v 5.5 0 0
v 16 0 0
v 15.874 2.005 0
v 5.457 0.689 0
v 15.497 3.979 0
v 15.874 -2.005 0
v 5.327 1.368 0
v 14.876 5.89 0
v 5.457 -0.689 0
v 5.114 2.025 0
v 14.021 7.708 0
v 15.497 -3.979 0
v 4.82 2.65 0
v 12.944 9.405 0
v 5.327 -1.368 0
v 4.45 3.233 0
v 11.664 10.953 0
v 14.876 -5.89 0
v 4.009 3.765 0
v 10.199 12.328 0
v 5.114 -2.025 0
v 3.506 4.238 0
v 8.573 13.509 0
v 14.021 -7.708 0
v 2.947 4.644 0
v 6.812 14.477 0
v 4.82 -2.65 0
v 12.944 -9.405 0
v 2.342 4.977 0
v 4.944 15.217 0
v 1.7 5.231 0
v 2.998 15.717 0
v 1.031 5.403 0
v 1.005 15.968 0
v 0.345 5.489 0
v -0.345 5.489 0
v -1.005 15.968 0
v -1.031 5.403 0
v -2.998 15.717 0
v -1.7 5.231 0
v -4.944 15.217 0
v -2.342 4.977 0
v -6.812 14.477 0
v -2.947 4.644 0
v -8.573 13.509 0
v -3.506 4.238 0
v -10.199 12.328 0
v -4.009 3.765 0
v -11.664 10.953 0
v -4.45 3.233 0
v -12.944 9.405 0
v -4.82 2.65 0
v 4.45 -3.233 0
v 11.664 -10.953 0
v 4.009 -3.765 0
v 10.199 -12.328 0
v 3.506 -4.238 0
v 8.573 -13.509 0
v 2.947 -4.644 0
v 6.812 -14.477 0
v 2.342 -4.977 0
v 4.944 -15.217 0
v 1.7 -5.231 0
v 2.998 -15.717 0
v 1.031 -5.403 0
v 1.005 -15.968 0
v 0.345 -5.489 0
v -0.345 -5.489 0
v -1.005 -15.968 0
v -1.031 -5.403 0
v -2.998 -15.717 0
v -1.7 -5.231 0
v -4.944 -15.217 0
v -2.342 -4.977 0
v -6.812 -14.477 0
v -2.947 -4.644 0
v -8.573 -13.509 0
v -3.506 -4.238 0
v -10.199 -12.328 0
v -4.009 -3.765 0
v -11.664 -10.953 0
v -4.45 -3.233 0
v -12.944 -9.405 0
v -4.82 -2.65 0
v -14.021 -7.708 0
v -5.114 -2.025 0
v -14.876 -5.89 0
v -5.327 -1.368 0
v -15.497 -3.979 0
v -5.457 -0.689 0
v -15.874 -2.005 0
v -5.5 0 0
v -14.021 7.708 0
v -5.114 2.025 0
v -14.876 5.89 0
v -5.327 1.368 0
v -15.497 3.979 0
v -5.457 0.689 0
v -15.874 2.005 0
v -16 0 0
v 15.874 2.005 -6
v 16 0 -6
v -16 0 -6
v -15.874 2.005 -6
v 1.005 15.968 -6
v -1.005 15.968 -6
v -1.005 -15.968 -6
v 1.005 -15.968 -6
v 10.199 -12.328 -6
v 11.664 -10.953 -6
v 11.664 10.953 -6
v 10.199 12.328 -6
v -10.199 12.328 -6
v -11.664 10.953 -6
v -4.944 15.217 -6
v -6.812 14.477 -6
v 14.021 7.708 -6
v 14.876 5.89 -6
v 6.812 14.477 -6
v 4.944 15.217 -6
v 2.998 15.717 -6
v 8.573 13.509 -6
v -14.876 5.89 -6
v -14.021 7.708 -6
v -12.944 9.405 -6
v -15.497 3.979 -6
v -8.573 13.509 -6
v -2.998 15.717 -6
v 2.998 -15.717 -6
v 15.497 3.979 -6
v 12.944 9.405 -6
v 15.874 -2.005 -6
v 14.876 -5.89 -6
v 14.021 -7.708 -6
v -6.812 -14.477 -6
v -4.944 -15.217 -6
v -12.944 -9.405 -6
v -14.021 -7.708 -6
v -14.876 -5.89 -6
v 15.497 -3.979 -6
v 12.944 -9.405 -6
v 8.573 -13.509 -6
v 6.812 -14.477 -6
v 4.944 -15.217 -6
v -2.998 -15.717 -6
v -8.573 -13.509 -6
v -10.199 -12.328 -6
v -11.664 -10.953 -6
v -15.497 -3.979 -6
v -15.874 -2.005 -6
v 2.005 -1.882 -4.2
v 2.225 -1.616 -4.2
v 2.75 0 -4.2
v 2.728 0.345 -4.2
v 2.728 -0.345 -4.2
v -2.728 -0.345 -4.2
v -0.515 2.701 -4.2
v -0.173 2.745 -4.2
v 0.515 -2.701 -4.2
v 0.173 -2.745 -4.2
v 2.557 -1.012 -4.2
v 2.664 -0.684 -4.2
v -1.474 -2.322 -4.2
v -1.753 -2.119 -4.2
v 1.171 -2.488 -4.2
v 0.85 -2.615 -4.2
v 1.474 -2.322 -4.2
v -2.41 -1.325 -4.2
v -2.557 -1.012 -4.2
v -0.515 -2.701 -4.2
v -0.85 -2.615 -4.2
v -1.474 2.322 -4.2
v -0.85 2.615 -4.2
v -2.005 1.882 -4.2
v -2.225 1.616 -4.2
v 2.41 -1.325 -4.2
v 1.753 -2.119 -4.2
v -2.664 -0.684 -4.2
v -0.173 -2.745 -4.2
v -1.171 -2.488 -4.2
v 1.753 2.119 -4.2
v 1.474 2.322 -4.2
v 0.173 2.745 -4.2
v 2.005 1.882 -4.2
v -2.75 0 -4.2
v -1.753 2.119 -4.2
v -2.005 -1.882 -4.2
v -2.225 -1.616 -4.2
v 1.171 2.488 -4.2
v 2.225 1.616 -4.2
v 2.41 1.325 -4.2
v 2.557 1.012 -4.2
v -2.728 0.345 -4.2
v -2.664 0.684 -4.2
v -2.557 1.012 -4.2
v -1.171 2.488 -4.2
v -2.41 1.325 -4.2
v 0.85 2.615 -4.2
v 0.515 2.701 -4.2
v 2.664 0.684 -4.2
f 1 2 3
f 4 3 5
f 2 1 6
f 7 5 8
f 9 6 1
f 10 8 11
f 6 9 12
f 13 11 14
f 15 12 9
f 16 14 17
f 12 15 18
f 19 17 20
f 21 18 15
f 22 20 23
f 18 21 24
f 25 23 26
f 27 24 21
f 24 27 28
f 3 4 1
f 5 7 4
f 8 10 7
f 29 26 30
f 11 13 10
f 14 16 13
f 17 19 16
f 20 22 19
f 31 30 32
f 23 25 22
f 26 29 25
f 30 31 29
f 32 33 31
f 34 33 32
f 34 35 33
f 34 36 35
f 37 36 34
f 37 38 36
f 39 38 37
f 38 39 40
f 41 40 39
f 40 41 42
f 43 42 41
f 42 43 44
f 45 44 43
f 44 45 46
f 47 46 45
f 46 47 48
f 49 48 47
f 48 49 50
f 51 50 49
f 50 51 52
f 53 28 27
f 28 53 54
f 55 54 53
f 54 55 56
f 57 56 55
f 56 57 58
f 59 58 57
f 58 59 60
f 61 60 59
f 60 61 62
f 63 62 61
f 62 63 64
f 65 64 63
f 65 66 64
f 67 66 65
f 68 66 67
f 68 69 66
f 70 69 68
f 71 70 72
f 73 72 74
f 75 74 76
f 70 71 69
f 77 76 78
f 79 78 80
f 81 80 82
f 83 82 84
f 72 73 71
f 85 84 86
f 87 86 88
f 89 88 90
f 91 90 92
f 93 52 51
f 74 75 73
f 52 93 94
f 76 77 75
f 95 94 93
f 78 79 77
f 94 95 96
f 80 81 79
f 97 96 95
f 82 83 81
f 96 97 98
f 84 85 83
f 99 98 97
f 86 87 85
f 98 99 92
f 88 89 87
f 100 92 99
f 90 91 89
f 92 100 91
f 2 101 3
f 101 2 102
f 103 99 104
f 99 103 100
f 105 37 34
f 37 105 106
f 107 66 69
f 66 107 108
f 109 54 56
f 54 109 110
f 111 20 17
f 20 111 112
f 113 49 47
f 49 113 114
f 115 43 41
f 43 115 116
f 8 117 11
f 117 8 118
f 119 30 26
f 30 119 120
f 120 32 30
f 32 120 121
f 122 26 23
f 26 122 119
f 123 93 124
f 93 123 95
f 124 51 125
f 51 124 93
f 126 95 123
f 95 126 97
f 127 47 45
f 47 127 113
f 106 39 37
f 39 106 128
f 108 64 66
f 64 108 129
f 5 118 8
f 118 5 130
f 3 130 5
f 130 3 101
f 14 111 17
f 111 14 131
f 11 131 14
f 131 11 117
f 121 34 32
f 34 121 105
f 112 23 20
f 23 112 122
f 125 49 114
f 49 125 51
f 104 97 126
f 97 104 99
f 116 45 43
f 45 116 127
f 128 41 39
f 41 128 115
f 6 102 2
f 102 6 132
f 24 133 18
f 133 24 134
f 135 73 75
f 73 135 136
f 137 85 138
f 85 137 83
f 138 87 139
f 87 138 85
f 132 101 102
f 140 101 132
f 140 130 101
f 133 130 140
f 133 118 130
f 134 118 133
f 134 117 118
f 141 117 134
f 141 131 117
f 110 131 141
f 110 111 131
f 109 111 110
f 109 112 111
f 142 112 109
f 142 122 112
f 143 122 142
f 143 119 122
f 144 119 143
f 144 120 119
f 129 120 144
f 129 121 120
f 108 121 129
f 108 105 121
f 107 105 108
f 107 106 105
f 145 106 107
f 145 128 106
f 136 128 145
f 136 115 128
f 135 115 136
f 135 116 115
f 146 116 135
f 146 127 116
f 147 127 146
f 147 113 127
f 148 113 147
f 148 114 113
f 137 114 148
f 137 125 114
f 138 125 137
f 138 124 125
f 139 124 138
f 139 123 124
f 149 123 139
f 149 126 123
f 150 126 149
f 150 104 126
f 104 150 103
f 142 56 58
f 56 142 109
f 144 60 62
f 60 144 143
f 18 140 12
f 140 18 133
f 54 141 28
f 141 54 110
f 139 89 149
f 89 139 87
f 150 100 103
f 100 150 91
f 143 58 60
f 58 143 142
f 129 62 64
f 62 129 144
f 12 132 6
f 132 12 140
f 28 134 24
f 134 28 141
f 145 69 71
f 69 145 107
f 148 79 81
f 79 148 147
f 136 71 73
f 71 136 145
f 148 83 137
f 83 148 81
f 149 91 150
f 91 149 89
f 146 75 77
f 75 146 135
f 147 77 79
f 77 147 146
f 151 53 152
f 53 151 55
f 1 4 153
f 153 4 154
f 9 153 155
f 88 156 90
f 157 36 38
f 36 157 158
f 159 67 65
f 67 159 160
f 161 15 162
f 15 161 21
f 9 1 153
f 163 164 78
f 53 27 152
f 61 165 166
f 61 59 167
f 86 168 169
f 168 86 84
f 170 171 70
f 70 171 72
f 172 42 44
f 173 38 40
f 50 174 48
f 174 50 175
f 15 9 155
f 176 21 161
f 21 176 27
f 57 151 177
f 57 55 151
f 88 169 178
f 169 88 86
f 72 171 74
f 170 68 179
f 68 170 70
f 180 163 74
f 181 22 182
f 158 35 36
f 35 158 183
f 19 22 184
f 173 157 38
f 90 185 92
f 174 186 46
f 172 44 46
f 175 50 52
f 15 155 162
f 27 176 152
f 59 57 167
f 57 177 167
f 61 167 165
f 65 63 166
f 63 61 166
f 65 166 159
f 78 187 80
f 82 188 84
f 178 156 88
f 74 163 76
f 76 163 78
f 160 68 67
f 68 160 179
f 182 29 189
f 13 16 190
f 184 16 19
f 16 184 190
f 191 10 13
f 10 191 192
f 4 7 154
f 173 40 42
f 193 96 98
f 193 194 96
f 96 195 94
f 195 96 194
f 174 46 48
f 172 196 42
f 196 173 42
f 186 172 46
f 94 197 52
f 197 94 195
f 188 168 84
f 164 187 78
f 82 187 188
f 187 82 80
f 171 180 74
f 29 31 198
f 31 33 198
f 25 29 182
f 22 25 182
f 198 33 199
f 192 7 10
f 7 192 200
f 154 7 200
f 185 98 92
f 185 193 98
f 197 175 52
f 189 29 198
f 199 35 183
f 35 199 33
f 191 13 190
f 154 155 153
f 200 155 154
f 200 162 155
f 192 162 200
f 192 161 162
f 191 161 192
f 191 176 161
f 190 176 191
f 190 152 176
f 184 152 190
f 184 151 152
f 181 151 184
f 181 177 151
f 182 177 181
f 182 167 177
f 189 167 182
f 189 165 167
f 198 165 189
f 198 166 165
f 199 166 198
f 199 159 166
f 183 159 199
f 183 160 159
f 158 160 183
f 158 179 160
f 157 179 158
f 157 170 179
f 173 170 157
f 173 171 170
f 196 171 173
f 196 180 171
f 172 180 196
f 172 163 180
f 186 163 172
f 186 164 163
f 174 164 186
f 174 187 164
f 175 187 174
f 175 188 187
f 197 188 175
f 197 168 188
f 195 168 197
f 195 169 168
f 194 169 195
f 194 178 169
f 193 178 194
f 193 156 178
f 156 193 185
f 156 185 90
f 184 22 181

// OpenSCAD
$fn = 50;


difference() {
	union() {
		translate(v = [0, 0, -3.0000000000]) {
			cylinder(h = 3, r = 7.0000000000);
		}
		translate(v = [0, 0, -6.0000000000]) {
			cylinder(h = 6, r = 16.0000000000);
		}
	}
	union() {
		translate(v = [0, 0, 0]) {
			rotate(a = [0, 0, 0]) {
				difference() {
					union() {
						#translate(v = [0, 0, -3.0000000000]) {
							cylinder(h = 3, r = 2.2500000000);
						}
						#translate(v = [0, 0, -4.2000000000]) {
							cylinder(h = 4.2000000000, r = 7.0000000000, r1 = 2.7500000000, r2 = 5.5000000000);
						}
						#translate(v = [0, 0, -3.0000000000]) {
							cylinder(h = 3, r = 2.7500000000);
						}
						#translate(v = [0, 0, -3.0000000000]) {
							cylinder(h = 3, r = 2.2500000000);
						}
					}
					union();
				}
			}
		}
	}
}
